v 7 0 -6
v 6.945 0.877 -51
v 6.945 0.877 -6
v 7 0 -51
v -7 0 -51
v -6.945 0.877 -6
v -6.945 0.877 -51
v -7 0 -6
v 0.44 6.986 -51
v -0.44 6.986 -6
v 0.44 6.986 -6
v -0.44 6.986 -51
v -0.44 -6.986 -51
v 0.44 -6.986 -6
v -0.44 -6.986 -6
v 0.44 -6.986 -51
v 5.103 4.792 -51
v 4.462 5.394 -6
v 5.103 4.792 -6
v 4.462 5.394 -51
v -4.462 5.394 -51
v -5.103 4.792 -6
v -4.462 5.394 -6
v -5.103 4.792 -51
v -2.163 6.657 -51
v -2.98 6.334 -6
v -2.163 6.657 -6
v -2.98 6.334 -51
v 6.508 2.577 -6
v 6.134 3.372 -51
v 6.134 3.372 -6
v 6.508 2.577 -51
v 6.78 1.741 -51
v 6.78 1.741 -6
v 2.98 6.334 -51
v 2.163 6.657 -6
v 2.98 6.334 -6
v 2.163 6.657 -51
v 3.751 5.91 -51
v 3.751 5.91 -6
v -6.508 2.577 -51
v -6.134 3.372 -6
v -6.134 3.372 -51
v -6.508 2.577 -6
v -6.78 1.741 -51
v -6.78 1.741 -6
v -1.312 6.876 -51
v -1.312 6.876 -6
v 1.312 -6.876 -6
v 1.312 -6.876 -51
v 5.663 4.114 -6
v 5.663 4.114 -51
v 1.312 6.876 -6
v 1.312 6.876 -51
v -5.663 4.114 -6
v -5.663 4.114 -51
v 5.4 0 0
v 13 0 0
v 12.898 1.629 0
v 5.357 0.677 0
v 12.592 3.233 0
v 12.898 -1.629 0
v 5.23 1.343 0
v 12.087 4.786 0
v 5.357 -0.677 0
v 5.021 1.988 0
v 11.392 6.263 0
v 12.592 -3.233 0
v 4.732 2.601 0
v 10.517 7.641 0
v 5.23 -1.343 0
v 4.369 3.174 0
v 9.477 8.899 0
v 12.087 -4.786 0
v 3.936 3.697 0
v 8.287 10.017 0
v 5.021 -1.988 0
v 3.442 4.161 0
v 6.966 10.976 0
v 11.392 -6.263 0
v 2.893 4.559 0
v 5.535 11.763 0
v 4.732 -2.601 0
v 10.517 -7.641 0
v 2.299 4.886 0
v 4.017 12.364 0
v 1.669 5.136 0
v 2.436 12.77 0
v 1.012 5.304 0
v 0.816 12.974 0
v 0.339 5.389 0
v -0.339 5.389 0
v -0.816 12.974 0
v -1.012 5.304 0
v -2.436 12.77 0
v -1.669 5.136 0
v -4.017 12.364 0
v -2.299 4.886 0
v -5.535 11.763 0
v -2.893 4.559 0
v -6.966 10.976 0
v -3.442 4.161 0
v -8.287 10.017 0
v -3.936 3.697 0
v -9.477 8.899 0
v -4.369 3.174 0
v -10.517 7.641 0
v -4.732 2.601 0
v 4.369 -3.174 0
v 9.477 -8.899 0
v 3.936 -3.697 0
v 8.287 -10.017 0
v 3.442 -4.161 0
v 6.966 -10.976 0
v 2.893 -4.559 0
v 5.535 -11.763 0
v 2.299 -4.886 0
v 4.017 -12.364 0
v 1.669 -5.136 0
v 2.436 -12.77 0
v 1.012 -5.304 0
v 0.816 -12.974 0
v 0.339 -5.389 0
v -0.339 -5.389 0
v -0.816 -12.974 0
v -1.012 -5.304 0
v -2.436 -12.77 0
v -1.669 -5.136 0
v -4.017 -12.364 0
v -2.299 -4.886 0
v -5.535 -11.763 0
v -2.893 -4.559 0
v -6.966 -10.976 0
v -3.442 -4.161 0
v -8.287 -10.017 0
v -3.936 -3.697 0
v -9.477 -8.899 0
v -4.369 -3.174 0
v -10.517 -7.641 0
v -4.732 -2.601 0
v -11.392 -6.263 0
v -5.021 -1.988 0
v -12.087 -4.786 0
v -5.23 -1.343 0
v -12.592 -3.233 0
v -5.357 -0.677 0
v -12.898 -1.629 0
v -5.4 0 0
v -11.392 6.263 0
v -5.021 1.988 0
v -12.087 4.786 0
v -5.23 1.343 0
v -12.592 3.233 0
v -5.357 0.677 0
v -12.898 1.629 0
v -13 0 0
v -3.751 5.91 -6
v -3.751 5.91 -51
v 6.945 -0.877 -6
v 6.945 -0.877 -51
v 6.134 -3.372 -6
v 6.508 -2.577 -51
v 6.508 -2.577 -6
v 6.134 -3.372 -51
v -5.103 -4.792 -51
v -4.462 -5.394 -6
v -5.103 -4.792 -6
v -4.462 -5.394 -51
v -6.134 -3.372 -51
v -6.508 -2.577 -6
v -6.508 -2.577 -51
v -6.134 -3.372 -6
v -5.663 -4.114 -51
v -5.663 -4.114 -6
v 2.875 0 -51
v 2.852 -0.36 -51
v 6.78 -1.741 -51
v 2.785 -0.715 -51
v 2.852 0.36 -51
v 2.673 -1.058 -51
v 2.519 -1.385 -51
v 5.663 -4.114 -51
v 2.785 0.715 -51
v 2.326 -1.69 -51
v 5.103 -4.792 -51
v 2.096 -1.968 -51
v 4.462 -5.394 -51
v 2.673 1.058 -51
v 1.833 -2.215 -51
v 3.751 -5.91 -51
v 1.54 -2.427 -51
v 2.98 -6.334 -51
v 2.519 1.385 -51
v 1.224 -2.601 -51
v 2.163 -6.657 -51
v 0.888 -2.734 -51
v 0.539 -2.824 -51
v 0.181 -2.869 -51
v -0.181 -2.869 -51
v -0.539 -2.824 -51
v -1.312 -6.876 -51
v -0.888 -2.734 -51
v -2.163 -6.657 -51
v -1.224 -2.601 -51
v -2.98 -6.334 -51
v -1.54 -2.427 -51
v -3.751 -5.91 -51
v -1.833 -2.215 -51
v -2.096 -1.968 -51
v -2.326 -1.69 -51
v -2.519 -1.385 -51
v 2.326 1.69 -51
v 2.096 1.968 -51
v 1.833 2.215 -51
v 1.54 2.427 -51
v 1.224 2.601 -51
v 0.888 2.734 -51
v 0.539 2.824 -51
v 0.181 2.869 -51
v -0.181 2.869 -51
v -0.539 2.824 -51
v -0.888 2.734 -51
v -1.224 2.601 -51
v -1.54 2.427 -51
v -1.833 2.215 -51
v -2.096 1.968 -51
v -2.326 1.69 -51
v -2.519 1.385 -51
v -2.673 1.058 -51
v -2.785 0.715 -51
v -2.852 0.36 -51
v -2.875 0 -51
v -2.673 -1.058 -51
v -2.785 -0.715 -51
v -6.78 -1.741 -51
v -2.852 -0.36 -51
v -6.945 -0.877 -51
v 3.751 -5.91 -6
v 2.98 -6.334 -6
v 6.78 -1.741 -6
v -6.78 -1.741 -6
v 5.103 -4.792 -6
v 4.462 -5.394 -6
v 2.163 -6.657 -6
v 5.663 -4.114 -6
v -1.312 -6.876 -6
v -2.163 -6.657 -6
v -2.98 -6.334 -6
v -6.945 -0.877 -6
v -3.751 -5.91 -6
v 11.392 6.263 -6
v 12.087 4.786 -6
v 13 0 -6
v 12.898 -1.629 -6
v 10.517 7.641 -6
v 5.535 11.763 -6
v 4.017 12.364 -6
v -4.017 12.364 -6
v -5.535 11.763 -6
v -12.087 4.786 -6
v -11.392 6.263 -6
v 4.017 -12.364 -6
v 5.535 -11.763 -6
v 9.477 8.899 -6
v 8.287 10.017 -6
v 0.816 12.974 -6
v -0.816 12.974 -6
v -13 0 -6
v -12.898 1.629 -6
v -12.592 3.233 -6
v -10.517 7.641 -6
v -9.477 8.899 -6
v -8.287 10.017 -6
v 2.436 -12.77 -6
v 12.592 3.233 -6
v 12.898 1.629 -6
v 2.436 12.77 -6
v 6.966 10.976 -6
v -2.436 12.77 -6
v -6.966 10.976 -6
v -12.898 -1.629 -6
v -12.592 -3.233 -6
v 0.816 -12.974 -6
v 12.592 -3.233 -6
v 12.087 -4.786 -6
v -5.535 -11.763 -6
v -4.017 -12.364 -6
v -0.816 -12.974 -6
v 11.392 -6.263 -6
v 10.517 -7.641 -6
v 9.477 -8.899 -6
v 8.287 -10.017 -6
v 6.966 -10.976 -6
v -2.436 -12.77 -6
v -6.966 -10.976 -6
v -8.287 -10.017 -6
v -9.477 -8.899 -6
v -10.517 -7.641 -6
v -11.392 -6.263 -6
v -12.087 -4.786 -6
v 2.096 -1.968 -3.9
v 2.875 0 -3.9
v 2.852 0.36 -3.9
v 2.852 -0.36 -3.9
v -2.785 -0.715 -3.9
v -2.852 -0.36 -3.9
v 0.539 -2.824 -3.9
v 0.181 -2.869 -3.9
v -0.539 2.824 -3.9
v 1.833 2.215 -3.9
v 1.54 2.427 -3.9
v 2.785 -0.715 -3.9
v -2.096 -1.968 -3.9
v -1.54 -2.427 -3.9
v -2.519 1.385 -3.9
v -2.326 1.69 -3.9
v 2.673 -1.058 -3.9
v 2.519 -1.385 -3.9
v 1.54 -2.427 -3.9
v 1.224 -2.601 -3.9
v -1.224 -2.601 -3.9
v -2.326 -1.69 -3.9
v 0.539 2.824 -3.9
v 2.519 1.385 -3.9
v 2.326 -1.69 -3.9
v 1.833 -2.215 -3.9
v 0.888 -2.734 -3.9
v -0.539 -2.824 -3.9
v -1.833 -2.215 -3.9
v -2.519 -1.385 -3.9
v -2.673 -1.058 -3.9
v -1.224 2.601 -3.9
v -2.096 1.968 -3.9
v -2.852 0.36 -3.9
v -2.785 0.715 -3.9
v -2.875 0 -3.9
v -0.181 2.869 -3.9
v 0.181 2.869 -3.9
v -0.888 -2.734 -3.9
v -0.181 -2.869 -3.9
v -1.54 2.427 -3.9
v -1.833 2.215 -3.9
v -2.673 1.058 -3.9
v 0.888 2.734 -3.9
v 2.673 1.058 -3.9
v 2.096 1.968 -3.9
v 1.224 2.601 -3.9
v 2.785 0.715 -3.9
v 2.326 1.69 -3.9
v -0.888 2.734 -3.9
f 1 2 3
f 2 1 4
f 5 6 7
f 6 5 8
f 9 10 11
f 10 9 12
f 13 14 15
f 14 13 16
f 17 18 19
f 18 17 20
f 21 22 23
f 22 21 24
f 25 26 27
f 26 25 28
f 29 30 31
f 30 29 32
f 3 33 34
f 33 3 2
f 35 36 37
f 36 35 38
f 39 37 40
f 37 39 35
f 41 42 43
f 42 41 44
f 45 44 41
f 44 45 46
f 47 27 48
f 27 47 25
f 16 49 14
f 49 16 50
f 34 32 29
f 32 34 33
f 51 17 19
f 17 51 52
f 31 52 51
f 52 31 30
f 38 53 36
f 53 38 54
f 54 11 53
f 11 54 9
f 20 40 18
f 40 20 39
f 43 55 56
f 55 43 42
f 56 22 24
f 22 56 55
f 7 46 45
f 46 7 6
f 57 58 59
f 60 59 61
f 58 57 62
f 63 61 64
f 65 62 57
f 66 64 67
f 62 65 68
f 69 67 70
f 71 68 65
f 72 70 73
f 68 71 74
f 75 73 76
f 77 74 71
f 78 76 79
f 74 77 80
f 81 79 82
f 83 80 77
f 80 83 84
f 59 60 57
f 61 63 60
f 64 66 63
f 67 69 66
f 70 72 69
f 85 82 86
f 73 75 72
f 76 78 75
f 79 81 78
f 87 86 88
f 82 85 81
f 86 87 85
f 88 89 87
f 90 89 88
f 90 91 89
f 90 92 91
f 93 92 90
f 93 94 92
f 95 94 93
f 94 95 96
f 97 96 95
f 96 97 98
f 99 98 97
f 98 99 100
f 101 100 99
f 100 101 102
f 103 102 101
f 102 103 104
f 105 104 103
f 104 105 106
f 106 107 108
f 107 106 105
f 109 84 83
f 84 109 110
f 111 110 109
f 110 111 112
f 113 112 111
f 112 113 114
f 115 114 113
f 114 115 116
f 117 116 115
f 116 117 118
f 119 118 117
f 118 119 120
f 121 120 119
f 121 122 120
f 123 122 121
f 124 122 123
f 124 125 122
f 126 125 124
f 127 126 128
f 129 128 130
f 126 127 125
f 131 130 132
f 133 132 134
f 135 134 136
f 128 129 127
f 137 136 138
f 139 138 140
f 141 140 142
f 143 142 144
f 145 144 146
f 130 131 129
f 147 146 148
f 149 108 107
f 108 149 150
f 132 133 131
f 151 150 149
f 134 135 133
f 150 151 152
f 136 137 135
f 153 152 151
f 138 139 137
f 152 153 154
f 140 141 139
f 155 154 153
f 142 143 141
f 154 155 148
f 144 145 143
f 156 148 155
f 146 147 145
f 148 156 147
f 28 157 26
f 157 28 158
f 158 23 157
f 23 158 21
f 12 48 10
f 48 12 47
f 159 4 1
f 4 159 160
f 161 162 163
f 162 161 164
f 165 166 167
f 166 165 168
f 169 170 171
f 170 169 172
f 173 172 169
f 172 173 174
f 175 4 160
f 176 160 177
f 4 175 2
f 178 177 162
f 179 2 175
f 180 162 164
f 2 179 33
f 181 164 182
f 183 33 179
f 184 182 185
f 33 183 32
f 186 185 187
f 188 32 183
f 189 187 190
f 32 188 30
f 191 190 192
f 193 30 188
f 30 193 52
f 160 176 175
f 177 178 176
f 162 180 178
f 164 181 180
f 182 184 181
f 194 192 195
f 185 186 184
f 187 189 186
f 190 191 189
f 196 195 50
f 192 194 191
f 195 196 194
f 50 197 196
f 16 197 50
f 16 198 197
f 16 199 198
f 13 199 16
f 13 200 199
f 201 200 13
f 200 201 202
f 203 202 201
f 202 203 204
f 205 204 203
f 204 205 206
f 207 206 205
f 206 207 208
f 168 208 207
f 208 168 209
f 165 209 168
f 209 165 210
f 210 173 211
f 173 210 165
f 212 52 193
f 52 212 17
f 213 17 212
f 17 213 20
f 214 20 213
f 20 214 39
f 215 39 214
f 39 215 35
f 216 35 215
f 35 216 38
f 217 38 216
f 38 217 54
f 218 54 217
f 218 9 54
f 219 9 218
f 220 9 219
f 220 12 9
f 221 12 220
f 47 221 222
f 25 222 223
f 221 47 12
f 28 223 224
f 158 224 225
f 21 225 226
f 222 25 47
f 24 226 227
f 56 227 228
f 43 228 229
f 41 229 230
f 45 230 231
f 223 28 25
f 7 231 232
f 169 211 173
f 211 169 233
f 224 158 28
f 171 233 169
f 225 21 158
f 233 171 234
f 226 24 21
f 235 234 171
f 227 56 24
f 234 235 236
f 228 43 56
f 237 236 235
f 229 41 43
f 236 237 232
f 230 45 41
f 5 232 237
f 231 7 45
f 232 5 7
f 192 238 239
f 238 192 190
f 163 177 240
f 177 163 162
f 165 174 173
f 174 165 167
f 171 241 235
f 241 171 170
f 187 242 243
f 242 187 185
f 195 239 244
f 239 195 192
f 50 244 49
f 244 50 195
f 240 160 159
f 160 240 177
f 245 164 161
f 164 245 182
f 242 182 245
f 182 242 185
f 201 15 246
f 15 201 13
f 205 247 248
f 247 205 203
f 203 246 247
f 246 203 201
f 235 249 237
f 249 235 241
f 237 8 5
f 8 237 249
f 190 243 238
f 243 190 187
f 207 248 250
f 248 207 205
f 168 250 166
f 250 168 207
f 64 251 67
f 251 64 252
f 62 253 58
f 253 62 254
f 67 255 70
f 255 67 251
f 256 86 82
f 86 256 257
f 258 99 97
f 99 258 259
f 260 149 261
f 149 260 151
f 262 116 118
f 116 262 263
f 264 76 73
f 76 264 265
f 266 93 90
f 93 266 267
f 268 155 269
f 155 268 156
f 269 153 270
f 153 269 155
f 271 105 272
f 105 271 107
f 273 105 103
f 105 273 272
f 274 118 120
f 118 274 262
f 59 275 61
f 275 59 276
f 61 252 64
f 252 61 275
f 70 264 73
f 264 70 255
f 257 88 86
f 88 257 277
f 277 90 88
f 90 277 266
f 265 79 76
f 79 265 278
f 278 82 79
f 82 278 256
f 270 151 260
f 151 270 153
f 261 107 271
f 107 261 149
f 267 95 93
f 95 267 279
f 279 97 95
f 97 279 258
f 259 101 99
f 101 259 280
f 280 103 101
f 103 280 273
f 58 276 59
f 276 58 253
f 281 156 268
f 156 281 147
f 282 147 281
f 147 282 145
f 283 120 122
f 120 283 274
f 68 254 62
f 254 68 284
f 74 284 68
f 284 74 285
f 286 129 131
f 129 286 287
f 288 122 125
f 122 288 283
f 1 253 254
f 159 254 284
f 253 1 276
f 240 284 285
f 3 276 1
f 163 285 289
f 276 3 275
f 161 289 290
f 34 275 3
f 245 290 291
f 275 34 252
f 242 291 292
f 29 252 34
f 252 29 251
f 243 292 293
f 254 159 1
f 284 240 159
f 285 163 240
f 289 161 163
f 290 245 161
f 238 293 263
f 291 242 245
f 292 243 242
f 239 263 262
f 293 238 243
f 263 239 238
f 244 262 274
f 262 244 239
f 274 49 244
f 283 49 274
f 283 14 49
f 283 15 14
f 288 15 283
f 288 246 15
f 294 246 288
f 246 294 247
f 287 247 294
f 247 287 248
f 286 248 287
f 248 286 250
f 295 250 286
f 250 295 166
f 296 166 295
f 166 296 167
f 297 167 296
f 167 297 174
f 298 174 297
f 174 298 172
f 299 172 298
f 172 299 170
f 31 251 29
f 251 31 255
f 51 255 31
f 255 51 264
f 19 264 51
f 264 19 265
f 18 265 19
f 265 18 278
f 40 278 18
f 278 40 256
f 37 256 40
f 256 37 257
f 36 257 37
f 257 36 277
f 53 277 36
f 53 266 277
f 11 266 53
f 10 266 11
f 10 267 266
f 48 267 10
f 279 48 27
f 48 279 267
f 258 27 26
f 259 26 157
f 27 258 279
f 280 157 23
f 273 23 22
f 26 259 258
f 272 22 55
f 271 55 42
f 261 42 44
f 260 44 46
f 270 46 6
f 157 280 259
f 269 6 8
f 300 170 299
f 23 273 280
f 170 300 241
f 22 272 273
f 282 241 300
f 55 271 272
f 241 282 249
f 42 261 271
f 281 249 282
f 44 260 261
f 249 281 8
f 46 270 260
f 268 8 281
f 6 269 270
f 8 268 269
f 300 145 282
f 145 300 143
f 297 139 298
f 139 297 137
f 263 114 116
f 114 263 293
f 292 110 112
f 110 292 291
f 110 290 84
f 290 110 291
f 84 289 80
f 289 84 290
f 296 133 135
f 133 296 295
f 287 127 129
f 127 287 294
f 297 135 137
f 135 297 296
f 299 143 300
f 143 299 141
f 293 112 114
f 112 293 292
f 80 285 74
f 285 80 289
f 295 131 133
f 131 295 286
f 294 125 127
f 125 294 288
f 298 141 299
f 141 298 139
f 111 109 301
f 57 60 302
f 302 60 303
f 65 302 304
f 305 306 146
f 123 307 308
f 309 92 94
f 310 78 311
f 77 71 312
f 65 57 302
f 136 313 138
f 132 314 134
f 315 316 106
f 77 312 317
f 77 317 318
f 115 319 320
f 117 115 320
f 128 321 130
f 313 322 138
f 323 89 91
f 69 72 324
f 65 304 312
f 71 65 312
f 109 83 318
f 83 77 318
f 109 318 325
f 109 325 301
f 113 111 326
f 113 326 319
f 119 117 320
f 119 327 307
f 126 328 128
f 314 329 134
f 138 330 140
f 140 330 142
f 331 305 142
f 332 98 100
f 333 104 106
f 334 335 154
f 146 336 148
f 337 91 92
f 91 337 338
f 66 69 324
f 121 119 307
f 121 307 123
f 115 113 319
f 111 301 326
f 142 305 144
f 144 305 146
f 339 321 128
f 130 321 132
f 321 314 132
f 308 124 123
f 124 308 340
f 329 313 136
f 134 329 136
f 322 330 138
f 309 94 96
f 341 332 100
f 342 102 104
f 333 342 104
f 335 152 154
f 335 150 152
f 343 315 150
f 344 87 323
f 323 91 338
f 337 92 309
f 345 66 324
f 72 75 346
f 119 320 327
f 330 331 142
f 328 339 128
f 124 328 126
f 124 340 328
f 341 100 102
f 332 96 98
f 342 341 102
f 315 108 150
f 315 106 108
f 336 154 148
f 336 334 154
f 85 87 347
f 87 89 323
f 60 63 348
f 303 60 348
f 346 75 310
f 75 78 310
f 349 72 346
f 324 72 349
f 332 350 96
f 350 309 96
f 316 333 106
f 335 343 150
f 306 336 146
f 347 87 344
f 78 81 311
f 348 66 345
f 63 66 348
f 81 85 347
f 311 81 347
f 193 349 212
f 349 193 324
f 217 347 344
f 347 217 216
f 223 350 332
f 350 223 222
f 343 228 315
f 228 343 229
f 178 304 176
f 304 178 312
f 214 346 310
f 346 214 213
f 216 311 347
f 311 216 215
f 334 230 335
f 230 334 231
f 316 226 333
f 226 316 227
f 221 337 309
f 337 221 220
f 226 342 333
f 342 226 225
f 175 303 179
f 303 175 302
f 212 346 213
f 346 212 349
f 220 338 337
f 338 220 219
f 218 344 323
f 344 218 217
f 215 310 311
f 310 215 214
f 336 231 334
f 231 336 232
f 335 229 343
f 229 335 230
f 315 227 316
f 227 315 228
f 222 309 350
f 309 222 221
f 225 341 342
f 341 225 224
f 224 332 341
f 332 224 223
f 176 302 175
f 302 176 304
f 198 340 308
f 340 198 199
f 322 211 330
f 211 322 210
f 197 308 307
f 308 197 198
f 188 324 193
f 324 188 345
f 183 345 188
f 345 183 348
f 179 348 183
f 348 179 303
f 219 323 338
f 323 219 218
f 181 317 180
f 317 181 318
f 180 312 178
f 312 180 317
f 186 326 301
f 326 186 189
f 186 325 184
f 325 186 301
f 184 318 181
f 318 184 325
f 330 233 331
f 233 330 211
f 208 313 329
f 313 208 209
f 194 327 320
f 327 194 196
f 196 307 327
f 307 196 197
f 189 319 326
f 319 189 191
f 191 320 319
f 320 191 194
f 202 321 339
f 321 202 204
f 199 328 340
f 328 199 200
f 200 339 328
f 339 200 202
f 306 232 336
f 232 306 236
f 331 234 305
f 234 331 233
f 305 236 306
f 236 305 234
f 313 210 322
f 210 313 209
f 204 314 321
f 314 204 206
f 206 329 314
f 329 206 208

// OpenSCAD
$fn = 50;


difference() {
	union() {
		translate(v = [0, 0, -51.0000000000]) {
			cylinder(h = 51, r = 7.0000000000);
		}
		translate(v = [0, 0, -6.0000000000]) {
			cylinder(h = 6, r = 13.0000000000);
		}
	}
	union() {
		translate(v = [0, 0, 0]) {
			rotate(a = [0, 0, 0]) {
				difference() {
					union() {
						#translate(v = [0, 0, -51.0000000000]) {
							cylinder(h = 51, r = 2.6000000000);
						}
						#translate(v = [0, 0, -3.9000000000]) {
							cylinder(h = 3.9000000000, r = 7.0000000000, r1 = 2.8750000000, r2 = 5.4000000000);
						}
						#translate(v = [0, 0, -51.0000000000]) {
							cylinder(h = 51, r = 2.8750000000);
						}
						#translate(v = [0, 0, -51.0000000000]) {
							cylinder(h = 51, r = 2.6000000000);
						}
					}
					union();
				}
			}
		}
	}
}
